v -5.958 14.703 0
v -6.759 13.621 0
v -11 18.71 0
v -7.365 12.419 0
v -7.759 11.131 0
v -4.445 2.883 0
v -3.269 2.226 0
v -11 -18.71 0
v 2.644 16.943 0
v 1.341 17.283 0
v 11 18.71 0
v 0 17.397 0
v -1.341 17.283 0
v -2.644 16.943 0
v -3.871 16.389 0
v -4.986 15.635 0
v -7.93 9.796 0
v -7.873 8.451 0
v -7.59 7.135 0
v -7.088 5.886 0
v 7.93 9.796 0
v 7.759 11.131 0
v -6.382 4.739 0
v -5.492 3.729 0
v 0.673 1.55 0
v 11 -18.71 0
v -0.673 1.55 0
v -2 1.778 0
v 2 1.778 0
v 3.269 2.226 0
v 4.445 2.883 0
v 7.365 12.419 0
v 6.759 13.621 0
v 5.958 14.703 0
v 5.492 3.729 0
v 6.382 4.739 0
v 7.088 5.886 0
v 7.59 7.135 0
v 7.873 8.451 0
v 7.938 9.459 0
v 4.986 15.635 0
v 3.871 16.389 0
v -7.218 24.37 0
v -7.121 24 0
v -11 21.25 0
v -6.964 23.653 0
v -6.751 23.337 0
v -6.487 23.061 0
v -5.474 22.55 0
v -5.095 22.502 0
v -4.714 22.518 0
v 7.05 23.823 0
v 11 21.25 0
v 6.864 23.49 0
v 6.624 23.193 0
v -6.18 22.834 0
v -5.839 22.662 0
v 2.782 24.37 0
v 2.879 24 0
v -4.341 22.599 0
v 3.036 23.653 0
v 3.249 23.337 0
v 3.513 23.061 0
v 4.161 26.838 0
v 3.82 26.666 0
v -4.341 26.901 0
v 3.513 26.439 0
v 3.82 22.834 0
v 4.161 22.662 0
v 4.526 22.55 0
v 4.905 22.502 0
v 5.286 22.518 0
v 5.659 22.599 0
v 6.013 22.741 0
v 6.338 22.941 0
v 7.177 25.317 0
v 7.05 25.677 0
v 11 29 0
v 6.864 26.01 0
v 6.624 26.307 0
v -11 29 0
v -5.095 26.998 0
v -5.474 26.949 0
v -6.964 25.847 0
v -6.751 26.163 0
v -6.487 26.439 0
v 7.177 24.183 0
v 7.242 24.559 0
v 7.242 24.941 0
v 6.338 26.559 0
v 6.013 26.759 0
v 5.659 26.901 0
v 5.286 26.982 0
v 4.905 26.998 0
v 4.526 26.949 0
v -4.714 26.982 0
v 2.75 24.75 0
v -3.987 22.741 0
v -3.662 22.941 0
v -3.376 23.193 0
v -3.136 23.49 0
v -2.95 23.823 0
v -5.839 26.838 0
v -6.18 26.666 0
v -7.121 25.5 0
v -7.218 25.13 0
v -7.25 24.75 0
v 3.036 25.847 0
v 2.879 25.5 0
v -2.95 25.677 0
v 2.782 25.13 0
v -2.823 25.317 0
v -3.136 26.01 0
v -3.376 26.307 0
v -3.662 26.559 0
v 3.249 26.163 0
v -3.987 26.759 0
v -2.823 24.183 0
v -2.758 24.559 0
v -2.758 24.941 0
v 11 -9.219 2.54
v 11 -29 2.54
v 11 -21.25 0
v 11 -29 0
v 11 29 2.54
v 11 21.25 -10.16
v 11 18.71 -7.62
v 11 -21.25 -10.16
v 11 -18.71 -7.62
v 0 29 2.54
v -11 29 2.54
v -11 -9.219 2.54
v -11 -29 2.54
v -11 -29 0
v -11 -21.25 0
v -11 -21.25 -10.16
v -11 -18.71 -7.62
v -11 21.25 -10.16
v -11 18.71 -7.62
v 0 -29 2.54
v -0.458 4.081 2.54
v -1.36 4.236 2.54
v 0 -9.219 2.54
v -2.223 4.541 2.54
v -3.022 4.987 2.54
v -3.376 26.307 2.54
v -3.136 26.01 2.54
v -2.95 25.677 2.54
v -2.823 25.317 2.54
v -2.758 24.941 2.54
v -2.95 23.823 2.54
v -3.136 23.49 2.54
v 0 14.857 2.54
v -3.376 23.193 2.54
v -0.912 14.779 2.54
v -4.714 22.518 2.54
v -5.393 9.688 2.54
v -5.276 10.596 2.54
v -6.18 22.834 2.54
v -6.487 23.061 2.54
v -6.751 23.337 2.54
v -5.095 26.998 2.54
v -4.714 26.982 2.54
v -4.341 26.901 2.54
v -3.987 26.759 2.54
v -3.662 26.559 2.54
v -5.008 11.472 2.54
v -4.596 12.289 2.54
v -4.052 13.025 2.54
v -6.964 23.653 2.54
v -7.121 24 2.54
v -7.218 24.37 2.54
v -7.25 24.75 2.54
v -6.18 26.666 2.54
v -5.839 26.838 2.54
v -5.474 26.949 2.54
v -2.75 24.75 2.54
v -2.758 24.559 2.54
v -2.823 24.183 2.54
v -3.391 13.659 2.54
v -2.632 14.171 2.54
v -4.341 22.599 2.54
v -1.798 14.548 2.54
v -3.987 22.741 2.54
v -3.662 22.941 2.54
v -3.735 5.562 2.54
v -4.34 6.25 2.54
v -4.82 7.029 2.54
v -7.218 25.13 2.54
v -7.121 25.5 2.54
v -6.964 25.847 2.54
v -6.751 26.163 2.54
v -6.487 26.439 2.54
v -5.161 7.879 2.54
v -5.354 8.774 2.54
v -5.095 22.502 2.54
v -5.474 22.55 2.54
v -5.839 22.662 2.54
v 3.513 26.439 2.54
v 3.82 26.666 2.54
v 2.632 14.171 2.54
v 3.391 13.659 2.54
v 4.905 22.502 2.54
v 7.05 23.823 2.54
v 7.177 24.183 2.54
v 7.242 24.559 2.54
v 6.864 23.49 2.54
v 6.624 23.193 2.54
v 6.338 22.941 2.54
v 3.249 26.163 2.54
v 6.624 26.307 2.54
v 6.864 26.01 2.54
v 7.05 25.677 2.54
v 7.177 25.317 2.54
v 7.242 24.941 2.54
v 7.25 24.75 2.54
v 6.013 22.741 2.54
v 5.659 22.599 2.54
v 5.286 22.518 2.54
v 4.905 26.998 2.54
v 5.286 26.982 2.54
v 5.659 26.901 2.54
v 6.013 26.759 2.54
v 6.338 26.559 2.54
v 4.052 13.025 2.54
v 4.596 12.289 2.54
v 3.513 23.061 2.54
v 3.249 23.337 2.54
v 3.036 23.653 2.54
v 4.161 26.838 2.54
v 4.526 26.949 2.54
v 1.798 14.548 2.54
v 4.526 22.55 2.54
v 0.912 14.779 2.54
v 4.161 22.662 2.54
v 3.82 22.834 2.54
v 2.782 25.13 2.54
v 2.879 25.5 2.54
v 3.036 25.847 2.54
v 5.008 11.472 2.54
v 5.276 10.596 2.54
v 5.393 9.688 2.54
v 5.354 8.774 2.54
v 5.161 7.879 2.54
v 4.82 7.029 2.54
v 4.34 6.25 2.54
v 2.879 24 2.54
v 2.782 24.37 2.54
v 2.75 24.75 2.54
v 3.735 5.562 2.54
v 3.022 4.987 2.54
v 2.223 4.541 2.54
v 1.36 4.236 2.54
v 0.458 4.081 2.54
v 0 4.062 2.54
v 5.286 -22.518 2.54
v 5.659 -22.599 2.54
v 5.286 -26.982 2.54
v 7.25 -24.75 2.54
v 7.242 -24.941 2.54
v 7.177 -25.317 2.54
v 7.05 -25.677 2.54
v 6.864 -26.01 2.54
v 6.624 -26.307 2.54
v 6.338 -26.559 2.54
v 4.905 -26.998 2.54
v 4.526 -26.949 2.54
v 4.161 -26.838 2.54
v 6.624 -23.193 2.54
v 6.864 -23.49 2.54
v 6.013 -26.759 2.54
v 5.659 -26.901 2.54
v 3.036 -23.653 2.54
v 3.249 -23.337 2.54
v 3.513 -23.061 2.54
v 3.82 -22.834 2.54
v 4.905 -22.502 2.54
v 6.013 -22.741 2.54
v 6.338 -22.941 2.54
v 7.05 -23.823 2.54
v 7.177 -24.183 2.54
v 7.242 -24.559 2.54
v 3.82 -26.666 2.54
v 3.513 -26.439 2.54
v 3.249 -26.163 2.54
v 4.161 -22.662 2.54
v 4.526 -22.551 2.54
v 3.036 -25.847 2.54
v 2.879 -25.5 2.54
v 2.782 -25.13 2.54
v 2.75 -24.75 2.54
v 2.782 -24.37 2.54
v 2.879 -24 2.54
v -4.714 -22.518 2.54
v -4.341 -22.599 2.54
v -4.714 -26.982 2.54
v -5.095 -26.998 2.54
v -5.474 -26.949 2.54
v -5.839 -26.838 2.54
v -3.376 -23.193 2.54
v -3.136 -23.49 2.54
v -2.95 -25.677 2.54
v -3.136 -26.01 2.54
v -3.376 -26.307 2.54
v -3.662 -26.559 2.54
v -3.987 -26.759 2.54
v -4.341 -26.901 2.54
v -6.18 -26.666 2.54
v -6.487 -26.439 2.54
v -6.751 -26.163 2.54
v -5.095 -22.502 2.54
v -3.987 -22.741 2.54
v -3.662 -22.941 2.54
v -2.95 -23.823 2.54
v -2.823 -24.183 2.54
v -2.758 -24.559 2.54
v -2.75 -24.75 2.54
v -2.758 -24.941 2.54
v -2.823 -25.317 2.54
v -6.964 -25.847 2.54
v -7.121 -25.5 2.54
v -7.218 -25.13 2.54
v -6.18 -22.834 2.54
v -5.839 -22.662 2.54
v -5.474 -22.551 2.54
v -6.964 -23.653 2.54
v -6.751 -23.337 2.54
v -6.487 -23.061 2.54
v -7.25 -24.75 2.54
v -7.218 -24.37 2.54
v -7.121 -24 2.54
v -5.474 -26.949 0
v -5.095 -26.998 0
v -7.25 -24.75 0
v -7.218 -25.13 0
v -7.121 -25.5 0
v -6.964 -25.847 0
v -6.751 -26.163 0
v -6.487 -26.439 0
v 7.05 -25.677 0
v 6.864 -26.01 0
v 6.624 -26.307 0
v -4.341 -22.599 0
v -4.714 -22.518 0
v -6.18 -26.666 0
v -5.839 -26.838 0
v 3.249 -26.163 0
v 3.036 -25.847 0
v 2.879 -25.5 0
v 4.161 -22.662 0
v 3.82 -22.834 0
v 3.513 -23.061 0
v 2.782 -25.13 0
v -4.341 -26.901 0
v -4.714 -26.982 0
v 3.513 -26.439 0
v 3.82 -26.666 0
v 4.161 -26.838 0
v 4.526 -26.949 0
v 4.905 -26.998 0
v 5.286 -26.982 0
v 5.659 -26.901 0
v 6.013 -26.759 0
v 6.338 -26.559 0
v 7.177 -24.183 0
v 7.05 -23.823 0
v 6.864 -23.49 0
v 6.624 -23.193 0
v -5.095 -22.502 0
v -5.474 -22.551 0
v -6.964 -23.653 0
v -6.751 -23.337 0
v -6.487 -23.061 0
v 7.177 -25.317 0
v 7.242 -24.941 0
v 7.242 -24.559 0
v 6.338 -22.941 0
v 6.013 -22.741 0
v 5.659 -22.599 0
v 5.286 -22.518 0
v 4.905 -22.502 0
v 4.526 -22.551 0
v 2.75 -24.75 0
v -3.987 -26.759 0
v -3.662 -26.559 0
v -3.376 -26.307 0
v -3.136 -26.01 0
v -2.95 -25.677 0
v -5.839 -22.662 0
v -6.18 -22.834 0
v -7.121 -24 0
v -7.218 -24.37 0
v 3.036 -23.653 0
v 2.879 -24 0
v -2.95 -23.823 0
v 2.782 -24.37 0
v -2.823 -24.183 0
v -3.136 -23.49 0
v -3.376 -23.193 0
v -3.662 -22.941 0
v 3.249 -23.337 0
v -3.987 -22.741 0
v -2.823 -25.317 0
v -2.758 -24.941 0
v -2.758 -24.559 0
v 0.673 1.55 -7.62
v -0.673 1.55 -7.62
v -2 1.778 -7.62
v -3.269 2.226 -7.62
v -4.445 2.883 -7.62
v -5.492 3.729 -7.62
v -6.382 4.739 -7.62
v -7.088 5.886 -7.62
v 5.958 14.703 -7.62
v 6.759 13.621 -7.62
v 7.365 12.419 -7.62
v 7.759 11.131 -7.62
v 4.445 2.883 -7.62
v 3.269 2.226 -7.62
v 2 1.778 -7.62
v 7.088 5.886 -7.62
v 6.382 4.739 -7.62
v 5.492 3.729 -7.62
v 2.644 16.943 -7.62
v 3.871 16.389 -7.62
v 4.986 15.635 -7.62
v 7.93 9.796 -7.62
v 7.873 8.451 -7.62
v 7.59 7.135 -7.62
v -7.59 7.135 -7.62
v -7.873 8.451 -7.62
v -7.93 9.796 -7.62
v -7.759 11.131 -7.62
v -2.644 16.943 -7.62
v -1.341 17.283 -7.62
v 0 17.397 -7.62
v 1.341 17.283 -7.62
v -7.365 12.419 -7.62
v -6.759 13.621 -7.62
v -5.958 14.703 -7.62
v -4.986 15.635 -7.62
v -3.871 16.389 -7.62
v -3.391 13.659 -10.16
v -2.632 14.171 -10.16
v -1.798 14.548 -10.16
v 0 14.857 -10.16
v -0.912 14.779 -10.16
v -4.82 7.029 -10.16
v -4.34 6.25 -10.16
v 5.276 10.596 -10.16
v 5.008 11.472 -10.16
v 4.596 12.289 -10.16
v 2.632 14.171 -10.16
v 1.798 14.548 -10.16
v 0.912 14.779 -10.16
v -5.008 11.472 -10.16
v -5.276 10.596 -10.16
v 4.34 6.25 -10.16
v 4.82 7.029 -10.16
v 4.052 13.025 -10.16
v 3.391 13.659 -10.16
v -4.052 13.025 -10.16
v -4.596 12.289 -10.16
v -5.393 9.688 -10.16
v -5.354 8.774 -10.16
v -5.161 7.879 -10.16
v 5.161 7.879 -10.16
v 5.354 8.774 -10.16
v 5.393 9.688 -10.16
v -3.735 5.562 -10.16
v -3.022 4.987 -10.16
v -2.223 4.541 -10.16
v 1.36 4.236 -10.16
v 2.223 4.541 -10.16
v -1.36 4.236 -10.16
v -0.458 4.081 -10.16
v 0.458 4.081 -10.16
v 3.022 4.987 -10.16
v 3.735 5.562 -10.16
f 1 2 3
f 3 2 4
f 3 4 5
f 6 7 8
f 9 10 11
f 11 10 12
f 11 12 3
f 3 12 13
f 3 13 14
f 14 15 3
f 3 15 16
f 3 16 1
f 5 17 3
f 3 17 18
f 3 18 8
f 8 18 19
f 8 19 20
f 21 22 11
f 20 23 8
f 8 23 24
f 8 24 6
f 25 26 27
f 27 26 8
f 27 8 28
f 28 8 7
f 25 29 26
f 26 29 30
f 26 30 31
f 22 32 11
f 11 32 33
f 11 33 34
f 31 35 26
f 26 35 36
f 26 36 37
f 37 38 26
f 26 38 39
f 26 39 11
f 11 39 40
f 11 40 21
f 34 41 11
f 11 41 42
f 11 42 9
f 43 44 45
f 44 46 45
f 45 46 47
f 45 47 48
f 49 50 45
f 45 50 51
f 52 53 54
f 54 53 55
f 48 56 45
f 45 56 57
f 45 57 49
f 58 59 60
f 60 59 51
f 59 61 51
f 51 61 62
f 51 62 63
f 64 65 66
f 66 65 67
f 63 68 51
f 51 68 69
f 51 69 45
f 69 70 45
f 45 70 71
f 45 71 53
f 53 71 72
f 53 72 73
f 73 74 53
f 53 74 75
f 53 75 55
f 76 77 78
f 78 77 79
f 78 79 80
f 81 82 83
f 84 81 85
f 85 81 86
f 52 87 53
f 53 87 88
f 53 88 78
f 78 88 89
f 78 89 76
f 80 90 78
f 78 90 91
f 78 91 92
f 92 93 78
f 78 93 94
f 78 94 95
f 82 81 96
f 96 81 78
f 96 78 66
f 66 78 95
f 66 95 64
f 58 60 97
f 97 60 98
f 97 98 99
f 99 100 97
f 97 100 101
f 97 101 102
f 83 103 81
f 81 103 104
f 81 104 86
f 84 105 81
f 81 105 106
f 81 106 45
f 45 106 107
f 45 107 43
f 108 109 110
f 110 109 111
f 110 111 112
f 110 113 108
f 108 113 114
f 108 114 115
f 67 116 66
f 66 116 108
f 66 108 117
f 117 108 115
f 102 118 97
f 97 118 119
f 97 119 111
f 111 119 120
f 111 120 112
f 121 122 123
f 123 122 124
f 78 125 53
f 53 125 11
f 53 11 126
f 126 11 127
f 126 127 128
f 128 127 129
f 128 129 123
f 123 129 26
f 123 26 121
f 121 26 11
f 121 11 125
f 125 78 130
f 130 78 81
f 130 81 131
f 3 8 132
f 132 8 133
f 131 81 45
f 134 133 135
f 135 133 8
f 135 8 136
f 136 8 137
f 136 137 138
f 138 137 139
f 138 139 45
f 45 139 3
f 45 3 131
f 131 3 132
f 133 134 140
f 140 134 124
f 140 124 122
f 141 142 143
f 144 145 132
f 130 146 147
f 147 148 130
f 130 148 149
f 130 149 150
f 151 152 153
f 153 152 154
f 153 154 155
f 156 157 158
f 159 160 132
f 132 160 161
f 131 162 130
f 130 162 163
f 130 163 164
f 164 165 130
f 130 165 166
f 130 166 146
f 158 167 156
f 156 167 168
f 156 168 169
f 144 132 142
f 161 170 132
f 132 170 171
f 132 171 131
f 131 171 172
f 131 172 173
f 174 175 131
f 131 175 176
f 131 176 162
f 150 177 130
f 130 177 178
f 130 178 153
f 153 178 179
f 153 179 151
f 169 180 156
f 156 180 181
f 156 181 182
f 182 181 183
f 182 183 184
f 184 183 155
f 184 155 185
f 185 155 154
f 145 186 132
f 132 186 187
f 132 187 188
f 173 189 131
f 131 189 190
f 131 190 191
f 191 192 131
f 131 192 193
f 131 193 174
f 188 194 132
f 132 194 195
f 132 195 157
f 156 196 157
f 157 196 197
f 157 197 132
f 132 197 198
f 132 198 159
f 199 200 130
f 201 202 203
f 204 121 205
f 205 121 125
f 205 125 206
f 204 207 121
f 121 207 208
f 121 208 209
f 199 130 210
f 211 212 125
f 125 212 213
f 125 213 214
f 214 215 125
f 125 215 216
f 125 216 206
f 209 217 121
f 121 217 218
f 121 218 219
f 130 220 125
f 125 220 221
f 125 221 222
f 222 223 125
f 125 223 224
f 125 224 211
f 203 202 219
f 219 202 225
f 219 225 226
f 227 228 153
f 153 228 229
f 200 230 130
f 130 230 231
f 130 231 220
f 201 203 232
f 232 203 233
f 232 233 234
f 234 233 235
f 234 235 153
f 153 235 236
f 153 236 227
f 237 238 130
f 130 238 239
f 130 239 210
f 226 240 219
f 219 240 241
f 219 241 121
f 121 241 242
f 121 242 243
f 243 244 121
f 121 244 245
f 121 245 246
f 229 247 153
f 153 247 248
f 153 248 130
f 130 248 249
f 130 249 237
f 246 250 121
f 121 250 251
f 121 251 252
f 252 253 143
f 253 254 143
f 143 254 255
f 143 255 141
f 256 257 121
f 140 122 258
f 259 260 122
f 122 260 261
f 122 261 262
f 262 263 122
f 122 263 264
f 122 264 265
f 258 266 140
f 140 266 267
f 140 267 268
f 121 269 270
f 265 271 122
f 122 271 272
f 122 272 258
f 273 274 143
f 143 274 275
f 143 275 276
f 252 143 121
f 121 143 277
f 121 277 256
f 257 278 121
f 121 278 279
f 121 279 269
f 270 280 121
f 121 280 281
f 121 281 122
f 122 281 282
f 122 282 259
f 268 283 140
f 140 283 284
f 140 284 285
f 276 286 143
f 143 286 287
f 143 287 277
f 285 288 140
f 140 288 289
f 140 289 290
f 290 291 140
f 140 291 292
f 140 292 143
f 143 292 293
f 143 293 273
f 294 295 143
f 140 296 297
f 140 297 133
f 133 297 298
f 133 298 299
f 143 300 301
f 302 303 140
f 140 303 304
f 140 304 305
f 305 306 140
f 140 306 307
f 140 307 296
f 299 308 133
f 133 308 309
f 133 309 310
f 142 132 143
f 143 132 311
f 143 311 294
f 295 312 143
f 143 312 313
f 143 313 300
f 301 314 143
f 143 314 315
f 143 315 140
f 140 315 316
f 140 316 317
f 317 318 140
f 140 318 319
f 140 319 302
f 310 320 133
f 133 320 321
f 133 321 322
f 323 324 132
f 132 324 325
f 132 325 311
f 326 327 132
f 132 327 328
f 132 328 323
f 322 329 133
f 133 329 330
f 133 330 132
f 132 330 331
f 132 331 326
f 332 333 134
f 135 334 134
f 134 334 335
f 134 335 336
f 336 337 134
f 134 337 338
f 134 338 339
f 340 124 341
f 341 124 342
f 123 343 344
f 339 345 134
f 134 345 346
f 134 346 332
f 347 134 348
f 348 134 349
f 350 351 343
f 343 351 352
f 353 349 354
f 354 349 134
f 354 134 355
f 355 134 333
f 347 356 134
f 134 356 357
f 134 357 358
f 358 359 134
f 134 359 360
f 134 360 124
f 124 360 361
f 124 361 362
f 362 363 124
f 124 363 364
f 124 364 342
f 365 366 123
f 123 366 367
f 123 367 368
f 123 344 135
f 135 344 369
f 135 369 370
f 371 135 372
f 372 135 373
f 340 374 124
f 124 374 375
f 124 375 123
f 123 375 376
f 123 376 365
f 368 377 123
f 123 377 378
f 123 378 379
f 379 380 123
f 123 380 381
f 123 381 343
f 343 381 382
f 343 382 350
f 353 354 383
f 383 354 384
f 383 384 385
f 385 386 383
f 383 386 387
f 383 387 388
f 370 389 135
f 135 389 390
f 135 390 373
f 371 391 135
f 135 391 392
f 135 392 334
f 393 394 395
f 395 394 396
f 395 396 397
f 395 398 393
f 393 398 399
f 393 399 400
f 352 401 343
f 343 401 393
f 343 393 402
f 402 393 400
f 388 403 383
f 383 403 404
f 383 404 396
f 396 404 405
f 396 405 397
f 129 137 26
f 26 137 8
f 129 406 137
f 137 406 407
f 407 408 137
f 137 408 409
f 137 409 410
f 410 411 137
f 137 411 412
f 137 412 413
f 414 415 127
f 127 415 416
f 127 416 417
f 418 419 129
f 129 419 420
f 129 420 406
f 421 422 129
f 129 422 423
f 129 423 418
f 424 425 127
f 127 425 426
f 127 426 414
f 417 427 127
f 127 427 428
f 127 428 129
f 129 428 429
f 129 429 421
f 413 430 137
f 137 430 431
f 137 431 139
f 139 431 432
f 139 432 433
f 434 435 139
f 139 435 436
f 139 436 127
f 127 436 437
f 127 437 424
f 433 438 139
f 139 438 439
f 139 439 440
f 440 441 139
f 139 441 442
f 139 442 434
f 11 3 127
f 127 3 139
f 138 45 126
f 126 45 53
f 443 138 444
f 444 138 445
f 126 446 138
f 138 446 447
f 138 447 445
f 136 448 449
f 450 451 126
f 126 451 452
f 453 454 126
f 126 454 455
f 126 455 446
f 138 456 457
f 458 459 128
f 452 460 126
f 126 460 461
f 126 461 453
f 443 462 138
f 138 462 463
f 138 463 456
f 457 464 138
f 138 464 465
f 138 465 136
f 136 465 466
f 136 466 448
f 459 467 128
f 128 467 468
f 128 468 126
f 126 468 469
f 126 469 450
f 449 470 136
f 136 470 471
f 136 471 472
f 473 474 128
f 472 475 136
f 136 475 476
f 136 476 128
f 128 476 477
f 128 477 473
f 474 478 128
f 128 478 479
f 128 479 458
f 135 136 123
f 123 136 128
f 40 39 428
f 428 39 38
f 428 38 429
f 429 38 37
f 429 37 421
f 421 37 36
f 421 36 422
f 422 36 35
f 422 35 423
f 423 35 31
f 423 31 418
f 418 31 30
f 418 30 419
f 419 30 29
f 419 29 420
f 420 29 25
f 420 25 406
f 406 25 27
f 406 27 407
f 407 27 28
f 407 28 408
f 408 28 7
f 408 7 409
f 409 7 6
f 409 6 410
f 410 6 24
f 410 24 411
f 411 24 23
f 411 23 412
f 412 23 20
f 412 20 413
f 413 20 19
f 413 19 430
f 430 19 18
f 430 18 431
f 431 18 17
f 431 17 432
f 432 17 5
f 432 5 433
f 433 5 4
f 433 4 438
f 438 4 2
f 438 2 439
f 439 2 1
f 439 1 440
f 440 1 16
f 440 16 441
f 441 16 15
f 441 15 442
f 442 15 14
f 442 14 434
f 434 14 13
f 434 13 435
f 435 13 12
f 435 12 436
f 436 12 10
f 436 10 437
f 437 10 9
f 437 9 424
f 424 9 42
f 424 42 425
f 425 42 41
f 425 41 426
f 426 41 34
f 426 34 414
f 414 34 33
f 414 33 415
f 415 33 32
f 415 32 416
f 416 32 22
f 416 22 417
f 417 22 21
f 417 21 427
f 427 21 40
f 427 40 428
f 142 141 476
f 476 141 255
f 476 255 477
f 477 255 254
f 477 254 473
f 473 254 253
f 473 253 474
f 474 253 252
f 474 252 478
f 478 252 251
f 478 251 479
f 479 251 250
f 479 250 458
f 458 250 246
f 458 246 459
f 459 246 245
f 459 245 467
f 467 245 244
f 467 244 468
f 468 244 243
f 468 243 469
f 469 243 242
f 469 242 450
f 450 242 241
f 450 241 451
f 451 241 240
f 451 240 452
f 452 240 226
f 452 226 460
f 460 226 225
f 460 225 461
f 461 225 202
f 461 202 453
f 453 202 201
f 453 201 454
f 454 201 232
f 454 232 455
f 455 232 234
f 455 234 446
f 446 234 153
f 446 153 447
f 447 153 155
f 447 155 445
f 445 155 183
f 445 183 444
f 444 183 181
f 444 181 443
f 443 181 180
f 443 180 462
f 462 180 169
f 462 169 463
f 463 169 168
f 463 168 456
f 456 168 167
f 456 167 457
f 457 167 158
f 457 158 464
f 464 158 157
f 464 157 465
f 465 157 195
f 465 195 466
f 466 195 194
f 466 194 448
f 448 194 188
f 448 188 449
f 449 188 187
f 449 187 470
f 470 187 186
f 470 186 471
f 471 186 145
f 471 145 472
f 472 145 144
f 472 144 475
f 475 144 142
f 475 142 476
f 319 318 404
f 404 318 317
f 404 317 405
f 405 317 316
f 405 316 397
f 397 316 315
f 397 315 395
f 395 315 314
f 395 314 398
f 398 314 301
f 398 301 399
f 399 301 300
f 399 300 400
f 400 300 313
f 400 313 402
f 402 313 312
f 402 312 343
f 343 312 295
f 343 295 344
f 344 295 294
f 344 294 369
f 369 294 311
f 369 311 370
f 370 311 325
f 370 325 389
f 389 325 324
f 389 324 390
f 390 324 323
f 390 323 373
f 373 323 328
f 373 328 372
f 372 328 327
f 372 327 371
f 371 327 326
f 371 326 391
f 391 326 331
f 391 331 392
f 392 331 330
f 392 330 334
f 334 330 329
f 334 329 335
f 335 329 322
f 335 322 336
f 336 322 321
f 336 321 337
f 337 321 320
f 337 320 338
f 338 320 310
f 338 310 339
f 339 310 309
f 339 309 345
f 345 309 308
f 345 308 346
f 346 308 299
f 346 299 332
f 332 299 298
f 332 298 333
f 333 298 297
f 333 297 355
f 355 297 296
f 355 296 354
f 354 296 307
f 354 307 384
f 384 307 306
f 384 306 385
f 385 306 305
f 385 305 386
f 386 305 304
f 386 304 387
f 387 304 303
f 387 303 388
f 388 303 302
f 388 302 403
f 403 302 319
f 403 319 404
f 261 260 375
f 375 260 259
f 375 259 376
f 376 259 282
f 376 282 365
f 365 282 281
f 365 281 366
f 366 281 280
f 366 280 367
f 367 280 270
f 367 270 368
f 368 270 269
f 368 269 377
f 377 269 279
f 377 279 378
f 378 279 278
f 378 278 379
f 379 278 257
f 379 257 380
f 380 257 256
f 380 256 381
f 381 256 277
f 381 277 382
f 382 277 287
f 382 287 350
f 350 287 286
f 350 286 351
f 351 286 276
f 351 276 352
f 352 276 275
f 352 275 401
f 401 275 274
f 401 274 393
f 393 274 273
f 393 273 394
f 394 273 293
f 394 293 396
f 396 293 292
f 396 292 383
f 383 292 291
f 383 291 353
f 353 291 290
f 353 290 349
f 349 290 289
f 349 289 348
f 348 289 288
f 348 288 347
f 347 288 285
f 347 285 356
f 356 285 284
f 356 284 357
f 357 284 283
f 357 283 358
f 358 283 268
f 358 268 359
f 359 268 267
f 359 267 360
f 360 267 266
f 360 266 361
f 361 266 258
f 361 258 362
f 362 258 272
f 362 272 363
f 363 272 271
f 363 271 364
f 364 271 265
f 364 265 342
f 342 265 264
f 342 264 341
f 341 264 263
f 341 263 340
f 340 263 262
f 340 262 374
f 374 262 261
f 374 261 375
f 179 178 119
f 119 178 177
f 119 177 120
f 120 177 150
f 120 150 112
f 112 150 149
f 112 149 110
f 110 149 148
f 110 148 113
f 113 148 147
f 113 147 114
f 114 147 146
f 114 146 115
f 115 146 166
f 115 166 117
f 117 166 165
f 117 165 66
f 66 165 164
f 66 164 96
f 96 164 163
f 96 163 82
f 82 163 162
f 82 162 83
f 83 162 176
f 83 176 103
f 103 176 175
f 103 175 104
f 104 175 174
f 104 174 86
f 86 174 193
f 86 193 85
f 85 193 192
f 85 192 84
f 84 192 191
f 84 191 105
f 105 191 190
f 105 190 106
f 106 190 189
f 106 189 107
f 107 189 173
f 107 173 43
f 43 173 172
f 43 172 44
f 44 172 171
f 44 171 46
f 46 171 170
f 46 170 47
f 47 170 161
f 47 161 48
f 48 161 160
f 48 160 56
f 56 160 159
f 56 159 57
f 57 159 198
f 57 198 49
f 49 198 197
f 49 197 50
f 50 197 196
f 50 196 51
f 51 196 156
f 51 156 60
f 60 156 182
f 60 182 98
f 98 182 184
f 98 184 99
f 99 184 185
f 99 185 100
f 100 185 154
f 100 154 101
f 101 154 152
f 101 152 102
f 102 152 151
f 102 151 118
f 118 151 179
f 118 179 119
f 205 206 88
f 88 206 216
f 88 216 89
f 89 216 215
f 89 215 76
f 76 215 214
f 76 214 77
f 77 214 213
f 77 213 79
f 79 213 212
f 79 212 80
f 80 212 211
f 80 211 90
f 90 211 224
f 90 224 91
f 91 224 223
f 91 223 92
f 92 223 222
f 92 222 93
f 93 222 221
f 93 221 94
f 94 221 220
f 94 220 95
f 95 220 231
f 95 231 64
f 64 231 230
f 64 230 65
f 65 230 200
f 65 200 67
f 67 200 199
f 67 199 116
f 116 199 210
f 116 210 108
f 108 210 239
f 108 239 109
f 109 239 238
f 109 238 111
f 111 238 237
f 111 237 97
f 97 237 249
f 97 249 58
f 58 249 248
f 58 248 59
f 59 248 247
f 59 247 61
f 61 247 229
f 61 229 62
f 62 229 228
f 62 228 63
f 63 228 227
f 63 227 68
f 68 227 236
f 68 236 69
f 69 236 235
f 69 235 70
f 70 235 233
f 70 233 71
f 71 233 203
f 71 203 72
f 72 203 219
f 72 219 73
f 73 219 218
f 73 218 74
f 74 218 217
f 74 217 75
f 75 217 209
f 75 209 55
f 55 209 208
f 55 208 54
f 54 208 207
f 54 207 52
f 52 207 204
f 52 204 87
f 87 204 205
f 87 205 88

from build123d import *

# Parameters (mm, degrees)
SKETCH1_W            = 22
SKETCH1_H            = 58
BOSS_EXTRUDE1_DEPTH  = 2.54
EXTRUDE_THIN2_DEPTH  = 22
SKETCH7_R            = 7.9375
SKETCH7_R_2          = 5.3975
BOSS_EXTRUDE2_DEPTH  = 10.16
SKETCH8_R            = 5.3975
CUT_EXTRUDE1_DEPTH   = 34.515518794
M4_CLEARANCE_HOLE1_D = 4.5


with BuildPart() as part:
    # Sketch1 → Boss-Extrude1 (new body)
    with BuildSketch(Plane.XY):
        Rectangle(SKETCH1_W, SKETCH1_H)
    extrude(amount=BOSS_EXTRUDE1_DEPTH)

    # Sketch6 → Extrude-Thin2 (add)
    with BuildSketch(Plane.ZY.offset(11)):
        Polygon((0, 21.25), (-10.16, 21.25), (-10.16, -21.25), (0, -21.25), (0, -18.71), (-7.62, -18.71), (-7.62, 18.71), (0, 18.71), align=None)
    extrude(amount=-EXTRUDE_THIN2_DEPTH)

    # Sketch7 → Boss-Extrude2 (add)
    with BuildSketch(Plane(origin=(0, 0, -10.16), x_dir=(-1, 0, 0), z_dir=(0, 0, -1))):
        with Locations(Location((0, 9.4592, 0), (0, 0, 90))):
            Circle(SKETCH7_R)
        with Locations(Location((0, 9.4592, 0), (0, 0, 90))):
            Circle(SKETCH7_R_2, mode=Mode.SUBTRACT)
    extrude(amount=-BOSS_EXTRUDE2_DEPTH)

    # Sketch8 → Cut-Extrude1 (cut, through all)
    with BuildSketch(Plane(origin=(0, 0, -10.16), x_dir=(-1, 0, 0), z_dir=(0, 0, -1))):
        with Locations(Location((0, 9.4592, 0), (0, 0, 90))):
            Circle(SKETCH8_R)
    extrude(amount=-CUT_EXTRUDE1_DEPTH, mode=Mode.SUBTRACT)

    # M4 Clearance Hole1 (through all)
    with Locations(Plane(origin=(0, 0, 0), x_dir=(-1, 0, 0), z_dir=(0, 0, -1))):
        with Locations((-5, 24.75), (5, 24.75), (-5, -24.75), (5, -24.75)):
            Hole(M4_CLEARANCE_HOLE1_D / 2)


solid = part.part
